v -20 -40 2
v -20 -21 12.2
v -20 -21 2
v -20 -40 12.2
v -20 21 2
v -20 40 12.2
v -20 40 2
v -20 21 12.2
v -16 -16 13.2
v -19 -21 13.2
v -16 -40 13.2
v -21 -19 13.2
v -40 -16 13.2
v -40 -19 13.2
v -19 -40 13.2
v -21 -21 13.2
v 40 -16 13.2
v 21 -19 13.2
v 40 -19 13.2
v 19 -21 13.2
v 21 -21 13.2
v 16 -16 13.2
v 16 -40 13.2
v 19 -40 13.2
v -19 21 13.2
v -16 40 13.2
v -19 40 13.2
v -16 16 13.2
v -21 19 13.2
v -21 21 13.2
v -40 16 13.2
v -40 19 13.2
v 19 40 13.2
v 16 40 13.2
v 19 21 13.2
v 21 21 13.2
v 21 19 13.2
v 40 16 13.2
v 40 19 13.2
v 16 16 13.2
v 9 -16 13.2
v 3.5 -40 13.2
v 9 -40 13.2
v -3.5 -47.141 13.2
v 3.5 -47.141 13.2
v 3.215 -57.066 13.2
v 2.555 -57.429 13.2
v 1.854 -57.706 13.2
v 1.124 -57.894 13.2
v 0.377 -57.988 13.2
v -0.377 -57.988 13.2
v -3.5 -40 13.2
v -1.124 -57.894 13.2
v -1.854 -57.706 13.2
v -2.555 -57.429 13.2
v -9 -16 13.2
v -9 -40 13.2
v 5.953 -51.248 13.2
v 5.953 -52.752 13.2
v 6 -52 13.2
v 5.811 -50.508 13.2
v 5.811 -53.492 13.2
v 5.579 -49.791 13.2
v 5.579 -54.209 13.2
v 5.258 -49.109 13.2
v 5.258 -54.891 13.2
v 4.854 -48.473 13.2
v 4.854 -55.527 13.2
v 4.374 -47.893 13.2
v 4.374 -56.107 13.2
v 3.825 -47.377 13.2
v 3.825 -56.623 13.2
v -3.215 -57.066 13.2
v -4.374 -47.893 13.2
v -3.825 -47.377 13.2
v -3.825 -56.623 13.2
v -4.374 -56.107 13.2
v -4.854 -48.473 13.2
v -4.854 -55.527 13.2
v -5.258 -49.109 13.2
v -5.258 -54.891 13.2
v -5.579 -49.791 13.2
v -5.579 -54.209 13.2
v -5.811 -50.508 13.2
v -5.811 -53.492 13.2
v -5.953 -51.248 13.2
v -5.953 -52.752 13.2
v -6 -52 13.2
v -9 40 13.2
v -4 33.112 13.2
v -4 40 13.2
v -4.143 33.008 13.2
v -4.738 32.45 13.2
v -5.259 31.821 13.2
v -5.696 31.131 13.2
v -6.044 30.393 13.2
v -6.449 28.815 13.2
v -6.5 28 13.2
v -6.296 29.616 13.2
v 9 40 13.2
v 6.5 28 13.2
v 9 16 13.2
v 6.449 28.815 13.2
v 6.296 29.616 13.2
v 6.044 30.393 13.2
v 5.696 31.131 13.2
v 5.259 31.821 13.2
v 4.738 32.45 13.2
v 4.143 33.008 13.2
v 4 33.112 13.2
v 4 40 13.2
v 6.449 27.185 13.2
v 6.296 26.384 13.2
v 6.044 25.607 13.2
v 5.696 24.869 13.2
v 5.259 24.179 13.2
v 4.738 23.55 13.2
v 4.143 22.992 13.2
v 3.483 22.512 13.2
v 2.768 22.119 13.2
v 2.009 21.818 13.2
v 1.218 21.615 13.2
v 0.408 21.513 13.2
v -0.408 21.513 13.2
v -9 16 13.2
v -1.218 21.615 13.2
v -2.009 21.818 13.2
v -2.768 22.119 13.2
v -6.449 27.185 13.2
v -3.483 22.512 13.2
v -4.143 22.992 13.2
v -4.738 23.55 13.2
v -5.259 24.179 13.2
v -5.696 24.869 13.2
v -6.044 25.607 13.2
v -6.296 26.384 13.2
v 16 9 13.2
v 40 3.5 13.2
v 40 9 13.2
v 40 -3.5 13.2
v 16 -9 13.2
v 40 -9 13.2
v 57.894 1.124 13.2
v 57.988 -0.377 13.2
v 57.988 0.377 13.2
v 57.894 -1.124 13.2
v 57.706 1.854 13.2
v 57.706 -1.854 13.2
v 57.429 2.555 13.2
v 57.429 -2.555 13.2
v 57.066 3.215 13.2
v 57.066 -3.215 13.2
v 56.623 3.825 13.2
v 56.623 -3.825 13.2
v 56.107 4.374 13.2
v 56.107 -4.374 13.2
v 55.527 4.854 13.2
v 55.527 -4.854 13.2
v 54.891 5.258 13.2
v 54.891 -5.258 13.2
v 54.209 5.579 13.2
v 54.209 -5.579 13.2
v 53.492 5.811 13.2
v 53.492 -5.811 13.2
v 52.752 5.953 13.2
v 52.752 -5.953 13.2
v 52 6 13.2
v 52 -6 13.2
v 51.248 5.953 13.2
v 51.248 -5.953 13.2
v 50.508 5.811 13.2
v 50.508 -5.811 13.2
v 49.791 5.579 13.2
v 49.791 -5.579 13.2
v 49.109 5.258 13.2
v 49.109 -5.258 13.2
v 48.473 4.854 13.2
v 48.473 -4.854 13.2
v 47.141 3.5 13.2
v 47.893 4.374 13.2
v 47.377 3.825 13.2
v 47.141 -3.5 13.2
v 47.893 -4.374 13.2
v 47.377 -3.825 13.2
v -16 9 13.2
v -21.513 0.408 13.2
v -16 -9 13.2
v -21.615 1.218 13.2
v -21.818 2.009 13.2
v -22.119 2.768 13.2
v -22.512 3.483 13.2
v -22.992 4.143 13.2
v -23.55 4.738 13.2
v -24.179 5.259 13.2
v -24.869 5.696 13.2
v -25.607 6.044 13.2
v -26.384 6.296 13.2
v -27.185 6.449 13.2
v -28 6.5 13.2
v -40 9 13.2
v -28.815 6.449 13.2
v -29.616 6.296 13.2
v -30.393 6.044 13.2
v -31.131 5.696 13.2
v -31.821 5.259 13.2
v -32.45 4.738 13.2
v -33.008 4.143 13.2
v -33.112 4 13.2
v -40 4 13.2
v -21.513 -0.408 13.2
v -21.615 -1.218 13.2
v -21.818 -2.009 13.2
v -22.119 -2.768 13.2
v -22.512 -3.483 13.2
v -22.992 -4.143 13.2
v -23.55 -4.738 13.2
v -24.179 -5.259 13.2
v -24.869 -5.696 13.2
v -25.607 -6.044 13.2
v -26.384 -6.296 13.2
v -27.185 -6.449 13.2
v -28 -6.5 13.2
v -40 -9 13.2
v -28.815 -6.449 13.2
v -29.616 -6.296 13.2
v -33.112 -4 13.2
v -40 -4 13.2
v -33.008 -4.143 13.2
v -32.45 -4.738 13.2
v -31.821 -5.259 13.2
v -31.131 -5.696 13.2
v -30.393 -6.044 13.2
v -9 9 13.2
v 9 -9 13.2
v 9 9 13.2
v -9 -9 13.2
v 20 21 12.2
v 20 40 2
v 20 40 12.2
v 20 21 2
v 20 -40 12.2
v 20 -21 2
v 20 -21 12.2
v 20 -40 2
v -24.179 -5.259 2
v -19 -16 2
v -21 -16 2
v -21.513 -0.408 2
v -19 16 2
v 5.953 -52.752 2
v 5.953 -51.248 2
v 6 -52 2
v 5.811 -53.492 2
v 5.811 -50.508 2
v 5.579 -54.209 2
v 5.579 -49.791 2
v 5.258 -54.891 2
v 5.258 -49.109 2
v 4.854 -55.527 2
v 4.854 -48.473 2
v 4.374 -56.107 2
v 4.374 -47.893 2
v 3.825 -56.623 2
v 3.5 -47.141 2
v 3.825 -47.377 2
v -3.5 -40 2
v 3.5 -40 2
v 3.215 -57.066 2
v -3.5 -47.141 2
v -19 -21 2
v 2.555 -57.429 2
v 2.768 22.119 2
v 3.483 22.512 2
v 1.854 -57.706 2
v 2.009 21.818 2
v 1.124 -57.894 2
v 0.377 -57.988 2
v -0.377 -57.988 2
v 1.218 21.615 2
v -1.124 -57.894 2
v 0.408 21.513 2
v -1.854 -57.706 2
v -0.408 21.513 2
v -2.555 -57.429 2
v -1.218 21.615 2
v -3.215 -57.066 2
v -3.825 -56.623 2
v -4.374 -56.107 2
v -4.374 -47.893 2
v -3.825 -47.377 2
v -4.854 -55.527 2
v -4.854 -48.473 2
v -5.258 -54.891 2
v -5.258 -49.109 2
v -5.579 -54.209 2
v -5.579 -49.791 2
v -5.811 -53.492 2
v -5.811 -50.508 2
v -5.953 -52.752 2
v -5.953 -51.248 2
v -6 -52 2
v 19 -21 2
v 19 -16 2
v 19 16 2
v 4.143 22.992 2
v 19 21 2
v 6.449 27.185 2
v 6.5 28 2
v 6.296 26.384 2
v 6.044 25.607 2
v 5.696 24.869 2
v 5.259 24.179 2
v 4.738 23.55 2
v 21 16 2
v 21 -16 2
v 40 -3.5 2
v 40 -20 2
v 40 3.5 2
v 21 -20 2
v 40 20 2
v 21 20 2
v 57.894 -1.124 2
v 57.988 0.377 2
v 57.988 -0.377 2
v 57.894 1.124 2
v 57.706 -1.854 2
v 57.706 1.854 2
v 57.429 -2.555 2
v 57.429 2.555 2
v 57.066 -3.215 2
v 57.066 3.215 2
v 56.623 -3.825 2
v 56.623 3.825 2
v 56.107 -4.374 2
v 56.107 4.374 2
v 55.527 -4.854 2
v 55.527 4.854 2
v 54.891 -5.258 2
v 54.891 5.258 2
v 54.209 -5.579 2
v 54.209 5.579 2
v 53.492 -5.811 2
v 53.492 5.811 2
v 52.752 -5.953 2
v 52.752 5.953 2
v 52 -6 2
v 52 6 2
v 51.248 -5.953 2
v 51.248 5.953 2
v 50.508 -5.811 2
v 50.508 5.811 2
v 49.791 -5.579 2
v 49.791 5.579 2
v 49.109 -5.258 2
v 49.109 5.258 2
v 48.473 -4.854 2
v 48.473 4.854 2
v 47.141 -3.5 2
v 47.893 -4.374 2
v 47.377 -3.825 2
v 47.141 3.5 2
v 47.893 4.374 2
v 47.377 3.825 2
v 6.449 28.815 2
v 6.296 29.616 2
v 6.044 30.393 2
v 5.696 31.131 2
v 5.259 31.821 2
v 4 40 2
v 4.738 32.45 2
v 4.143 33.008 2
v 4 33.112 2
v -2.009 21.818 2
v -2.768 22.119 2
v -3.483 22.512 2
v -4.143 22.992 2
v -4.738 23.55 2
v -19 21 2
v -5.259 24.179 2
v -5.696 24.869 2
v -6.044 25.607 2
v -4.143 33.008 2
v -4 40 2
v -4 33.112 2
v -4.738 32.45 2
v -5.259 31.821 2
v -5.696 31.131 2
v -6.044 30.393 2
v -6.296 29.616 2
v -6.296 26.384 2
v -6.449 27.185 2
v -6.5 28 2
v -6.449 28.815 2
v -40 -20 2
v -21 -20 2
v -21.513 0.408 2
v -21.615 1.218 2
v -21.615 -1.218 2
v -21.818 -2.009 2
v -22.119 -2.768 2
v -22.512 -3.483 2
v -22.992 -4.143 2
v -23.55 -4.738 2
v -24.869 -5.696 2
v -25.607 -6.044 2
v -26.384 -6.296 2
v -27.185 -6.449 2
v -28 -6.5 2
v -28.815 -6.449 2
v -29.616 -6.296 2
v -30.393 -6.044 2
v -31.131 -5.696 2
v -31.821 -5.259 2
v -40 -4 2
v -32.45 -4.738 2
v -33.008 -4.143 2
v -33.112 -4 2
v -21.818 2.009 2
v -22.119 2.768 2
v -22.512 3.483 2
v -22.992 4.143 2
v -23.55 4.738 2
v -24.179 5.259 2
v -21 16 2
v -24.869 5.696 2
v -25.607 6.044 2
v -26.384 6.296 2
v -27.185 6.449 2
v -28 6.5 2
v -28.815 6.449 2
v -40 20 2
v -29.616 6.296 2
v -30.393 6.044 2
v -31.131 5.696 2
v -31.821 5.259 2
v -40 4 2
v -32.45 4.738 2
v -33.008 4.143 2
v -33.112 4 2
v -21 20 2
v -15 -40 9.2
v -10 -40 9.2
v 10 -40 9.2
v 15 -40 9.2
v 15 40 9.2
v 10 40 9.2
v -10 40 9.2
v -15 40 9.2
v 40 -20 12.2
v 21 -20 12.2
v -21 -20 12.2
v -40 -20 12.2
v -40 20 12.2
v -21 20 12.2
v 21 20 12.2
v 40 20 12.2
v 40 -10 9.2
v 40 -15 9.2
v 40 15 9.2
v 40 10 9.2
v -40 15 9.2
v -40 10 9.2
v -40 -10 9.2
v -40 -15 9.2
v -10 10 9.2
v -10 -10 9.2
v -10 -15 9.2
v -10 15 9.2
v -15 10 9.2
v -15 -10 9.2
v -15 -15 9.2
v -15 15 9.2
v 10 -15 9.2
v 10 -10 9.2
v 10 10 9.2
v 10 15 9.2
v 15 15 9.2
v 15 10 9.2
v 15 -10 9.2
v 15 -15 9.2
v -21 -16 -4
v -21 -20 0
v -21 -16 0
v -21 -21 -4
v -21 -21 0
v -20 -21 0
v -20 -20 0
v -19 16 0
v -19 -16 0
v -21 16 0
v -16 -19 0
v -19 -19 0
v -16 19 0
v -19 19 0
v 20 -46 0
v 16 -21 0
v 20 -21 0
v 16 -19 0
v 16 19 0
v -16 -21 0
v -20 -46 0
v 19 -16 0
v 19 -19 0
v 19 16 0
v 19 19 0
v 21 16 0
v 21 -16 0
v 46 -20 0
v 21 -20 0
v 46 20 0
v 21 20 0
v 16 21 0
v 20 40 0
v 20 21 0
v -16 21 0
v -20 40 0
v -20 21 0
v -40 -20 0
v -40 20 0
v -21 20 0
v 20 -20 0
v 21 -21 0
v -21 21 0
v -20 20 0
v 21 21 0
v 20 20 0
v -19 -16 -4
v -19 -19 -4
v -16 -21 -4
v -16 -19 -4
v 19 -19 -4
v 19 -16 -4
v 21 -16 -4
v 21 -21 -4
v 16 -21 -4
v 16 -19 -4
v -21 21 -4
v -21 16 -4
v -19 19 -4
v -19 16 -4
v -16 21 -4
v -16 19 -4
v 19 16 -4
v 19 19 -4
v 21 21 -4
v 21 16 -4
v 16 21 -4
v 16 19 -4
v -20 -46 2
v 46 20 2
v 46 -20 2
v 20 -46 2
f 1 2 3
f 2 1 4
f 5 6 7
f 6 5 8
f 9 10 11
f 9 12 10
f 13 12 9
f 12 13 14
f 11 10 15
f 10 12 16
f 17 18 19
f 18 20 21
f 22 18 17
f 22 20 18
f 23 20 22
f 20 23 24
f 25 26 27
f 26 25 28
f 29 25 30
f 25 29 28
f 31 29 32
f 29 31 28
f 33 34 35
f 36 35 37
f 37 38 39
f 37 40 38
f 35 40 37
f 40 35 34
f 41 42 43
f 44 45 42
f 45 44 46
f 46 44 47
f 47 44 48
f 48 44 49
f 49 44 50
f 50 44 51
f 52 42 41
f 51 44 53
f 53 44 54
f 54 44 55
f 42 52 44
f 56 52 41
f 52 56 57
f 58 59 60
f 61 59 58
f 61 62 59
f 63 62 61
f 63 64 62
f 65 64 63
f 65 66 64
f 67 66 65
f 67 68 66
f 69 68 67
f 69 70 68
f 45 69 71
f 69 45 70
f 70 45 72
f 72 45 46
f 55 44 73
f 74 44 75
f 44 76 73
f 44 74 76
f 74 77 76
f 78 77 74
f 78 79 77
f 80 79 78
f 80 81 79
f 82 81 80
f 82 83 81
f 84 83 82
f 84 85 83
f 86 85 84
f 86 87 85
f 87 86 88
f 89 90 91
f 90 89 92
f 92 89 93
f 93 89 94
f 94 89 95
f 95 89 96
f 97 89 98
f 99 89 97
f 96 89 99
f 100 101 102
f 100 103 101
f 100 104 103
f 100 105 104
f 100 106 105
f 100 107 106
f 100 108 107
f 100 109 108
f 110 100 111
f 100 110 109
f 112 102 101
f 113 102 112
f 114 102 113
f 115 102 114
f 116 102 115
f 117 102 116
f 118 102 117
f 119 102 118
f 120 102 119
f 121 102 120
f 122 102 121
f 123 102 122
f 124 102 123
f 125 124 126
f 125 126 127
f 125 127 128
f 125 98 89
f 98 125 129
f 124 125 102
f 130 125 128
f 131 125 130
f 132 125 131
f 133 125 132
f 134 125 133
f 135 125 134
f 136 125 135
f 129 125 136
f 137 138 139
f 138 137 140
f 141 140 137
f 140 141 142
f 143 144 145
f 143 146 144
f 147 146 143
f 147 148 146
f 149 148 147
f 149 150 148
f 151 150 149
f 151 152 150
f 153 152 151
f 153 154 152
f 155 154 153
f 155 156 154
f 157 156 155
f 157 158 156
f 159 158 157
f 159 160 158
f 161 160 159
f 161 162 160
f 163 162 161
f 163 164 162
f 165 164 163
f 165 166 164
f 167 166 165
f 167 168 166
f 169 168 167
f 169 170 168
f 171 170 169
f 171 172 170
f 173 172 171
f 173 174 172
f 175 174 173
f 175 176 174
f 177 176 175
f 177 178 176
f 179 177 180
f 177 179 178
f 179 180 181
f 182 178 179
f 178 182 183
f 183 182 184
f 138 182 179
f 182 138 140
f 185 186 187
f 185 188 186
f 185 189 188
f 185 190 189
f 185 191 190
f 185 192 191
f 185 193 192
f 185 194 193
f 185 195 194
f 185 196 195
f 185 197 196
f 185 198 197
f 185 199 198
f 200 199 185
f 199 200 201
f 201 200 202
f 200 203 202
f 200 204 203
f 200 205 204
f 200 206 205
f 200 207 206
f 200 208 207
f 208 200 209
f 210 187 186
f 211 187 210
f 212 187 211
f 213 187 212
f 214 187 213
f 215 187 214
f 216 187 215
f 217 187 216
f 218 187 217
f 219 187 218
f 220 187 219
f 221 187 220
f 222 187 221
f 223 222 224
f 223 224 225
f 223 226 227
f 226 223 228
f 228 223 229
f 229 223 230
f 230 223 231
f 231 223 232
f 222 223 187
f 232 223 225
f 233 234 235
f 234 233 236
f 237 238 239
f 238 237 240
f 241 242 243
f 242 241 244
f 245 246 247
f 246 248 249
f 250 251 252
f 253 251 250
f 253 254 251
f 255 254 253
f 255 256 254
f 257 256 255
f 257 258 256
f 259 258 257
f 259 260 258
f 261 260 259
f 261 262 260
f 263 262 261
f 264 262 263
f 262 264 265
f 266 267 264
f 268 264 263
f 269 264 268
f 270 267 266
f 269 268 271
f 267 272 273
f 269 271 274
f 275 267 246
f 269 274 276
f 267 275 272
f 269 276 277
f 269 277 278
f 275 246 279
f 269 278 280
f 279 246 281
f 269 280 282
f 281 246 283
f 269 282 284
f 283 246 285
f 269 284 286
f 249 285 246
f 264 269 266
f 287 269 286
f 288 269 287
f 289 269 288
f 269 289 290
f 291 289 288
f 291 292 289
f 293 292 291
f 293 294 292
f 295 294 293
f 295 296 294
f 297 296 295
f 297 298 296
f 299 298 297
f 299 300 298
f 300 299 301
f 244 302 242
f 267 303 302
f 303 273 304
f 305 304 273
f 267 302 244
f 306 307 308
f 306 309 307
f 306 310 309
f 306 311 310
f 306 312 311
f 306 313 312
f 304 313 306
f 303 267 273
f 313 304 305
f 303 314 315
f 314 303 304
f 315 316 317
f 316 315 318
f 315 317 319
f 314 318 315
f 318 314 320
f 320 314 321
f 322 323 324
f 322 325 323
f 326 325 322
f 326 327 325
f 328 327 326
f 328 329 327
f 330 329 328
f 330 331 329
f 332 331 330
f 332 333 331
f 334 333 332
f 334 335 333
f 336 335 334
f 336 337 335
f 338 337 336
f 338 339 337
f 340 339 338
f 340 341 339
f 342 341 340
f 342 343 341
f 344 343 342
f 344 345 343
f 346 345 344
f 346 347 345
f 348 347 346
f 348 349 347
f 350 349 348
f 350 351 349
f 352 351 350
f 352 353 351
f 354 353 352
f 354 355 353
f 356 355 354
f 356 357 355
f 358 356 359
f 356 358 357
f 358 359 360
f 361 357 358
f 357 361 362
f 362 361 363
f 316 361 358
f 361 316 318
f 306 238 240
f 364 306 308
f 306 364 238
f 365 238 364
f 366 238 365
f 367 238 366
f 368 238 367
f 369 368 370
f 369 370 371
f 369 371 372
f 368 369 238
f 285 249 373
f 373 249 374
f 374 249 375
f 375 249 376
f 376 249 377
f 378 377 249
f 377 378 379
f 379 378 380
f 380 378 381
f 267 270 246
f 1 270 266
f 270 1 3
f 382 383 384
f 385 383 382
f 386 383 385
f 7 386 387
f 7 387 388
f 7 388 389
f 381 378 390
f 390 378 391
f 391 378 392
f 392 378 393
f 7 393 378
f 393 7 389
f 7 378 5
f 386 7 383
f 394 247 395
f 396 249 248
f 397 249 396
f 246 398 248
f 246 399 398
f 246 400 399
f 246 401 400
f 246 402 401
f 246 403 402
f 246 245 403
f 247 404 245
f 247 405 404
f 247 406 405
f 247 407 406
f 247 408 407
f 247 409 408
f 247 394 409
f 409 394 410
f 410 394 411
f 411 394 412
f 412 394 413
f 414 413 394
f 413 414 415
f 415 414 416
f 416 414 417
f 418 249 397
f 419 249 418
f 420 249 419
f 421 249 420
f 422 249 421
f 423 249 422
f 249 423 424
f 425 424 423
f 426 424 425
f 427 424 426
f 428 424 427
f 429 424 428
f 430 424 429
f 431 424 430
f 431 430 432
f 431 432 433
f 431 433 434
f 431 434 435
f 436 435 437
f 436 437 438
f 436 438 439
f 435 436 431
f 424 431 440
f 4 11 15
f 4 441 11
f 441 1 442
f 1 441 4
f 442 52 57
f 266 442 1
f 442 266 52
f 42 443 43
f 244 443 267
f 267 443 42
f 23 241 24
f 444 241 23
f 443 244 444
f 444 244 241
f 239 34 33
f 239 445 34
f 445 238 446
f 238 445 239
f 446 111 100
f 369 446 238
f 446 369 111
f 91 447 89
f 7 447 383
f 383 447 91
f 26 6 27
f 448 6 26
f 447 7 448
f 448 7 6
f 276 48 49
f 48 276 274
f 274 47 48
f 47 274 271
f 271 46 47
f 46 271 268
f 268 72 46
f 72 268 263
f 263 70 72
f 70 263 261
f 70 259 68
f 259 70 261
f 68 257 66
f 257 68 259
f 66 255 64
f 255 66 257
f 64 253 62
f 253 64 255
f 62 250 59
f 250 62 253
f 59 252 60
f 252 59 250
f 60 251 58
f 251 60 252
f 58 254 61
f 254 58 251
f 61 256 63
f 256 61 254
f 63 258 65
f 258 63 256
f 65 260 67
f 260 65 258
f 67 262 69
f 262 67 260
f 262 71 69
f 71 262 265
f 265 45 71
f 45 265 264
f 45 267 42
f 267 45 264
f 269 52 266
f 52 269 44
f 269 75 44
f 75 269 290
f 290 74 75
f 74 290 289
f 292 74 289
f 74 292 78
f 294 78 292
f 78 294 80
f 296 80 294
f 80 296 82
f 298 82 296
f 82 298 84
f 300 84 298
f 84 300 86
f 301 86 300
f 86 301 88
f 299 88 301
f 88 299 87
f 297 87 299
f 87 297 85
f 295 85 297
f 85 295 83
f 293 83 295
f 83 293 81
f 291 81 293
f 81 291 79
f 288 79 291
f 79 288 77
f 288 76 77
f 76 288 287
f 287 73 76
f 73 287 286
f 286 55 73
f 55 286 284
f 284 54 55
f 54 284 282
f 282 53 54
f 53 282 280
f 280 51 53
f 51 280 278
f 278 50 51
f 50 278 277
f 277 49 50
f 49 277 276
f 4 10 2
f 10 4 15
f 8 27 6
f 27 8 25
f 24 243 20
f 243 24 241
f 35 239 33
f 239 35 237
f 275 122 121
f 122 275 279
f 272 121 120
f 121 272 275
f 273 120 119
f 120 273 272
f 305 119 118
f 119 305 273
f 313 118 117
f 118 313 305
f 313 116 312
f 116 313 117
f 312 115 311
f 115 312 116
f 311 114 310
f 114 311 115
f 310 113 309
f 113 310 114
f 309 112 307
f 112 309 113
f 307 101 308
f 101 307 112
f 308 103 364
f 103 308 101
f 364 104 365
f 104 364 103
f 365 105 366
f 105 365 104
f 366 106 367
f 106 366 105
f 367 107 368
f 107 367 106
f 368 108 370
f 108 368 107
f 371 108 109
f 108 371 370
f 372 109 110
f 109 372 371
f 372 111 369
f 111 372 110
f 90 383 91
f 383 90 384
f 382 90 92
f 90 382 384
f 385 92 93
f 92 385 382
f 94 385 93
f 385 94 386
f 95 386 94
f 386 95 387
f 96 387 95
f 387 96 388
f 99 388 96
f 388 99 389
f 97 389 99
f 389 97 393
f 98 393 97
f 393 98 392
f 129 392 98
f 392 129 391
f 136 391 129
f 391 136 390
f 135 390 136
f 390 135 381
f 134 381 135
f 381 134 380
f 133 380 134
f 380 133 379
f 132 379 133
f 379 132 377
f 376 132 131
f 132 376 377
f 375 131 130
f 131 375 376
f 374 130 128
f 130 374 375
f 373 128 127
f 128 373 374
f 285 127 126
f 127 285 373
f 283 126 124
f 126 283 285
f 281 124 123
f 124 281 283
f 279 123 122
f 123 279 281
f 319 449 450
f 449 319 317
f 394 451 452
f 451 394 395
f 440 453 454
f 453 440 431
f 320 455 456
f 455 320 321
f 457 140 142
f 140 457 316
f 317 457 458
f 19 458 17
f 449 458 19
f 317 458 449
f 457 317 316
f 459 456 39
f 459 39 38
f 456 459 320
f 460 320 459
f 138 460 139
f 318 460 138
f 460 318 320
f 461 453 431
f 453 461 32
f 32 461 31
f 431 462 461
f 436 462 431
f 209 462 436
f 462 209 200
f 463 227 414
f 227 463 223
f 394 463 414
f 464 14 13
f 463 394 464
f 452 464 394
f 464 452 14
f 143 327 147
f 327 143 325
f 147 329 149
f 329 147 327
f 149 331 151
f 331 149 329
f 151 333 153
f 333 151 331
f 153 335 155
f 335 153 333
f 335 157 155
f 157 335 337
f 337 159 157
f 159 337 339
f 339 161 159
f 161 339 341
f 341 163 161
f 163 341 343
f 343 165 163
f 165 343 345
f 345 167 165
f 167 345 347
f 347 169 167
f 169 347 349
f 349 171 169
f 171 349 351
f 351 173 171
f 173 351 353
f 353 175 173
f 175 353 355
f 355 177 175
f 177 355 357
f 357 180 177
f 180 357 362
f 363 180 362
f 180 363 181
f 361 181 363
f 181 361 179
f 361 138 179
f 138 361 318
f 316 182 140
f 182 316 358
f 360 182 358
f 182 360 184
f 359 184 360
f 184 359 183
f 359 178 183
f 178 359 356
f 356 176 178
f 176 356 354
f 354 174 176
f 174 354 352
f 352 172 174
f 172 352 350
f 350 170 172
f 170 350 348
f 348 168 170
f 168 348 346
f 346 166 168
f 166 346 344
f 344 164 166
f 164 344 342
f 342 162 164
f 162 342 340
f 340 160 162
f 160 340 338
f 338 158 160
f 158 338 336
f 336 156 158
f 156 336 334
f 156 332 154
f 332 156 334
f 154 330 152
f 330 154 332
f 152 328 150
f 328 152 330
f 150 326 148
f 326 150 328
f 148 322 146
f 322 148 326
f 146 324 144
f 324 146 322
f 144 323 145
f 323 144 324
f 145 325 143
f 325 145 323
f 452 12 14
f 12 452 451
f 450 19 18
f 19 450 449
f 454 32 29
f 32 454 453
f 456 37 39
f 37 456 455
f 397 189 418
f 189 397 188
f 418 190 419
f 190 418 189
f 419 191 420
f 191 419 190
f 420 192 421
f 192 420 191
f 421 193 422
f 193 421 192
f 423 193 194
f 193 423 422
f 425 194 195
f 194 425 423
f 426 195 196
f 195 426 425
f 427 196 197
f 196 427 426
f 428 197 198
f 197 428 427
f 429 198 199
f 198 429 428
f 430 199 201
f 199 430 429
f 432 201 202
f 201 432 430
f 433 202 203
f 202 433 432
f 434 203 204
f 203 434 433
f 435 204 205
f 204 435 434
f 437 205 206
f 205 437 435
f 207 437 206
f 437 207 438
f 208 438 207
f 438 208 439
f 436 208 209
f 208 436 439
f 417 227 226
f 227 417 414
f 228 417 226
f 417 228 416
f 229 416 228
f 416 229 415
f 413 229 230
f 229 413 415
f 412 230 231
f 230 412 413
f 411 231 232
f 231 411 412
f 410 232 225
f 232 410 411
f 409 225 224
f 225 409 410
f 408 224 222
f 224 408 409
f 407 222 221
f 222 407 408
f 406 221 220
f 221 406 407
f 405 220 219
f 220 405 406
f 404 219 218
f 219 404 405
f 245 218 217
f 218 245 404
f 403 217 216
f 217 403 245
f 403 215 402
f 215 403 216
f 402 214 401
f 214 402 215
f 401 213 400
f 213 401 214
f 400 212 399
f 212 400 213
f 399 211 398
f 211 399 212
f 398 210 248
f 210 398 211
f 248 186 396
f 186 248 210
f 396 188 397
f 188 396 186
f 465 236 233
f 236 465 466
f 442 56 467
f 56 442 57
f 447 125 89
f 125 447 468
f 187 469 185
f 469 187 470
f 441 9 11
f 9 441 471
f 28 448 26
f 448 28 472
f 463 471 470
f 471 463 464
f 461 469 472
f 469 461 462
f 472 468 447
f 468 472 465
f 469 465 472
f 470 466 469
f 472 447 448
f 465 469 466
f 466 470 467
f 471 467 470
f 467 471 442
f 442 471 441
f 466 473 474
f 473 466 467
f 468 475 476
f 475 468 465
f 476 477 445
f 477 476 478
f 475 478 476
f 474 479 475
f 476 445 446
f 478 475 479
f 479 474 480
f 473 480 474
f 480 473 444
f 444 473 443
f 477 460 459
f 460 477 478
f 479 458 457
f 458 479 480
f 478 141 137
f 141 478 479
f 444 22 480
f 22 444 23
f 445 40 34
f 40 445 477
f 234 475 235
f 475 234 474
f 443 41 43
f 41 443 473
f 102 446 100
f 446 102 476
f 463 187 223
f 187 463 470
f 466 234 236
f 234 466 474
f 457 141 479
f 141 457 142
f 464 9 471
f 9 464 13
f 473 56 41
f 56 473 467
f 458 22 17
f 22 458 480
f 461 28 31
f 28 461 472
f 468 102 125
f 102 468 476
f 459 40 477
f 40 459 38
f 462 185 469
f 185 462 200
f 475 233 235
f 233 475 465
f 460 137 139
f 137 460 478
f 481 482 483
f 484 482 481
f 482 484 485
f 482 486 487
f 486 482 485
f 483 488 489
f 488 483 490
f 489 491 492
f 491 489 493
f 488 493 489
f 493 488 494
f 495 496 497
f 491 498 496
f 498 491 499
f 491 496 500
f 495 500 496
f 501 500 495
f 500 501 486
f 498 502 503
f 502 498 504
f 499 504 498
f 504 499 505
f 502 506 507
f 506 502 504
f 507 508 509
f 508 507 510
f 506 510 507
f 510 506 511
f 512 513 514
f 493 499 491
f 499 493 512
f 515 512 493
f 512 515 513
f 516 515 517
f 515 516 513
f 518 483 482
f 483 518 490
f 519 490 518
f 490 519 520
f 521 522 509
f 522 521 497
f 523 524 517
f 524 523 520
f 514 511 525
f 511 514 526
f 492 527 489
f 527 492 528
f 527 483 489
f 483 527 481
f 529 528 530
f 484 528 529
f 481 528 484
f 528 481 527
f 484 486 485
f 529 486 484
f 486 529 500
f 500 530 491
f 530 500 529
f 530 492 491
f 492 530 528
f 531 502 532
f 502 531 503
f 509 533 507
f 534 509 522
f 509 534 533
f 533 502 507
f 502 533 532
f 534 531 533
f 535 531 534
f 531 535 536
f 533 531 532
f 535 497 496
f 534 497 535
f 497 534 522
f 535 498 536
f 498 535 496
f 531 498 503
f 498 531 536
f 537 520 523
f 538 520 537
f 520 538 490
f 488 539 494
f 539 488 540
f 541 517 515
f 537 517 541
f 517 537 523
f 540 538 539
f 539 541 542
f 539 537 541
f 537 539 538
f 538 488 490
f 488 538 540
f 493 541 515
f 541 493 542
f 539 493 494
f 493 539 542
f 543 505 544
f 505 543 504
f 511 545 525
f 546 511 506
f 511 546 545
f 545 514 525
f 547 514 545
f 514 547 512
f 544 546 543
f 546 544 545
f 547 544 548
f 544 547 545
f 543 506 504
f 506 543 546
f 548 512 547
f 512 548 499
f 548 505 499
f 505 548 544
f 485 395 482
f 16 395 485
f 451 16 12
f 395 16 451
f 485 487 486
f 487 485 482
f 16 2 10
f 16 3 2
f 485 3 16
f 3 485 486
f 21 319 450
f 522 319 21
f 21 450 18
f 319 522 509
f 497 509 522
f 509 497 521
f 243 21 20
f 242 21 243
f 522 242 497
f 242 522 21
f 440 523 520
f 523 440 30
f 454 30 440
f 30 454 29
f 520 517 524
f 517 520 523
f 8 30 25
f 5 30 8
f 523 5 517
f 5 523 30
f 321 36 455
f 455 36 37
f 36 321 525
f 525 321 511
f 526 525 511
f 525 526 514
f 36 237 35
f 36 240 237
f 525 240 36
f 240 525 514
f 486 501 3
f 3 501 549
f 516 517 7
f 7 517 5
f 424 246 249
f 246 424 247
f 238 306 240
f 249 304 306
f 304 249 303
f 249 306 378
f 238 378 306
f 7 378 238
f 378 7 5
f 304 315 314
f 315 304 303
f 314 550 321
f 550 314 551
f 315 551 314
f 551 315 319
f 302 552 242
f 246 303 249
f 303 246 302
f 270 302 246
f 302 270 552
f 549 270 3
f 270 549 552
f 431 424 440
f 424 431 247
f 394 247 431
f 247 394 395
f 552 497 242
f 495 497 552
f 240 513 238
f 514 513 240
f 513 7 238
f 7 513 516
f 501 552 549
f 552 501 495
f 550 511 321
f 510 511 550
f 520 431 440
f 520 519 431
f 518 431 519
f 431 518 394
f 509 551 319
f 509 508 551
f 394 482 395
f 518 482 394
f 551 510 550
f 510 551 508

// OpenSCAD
$fn = 50;

// spacing = .4;
// insetLength = topTrackLinkLength + spacing;
// insetWidth = topTrackLinkWidth + spacing / 2;
// insetDepth = topTrackLinkDepth + spacing;

baseHeight = 2;
baseSupport = 6;

trackChamfer = 1;
trackWidth = 40;
trackHeight = 11.2;

topTrackLength = 80;
topTrackLinkLength = 8;
topTrackLinkOffset = 20;
topTrackLinkWidth = 2;
topTrackLinkDepth = 4;

linkOffset = 12;
linkWidth = 7;
linkSize = 12;

railWidth = 7;
railOffset = 4;
railDepth = 4;

union() {
  difference() {
    union() {
      renderTopTrack();
      rotate([0, 0, 90]) {
        renderTopTrack();
      }
    }
    union() {
      renderTopRails();
      rotate([0, 0, 90]) {
        renderTopRails();
      }
    }
  }

  renderTopBase();
  rotate([0, 0, 90]) {
    renderTopBase();
  }

  renderTopTrackLinks();
  renderTopGrips();
}

module renderTopBase() {
  translate([0, -baseSupport / 2, baseHeight / 2]) {
    cube([trackWidth, topTrackLength + baseSupport, baseHeight], center=true);
  }
}

module renderTopTrack() {
  translate([0, 0, trackHeight / 2 + baseHeight]) {
    difference() {
      union() {
        cube([trackWidth, topTrackLength, trackHeight], center=true);
        renderTopMaleLink();
      }
      renderTopFemaleLink();
      renderTopChamfers();
    }
  }
}

module renderTopChamfers() {
  union() {
    translate([-trackWidth / 2, topTrackLength / 2, trackHeight / 2]) {
      rotate([90, 0, 0]) {
        linear_extrude(topTrackLength + 1) {
          polygon(
            [
              [0, 0],
              [trackChamfer, 0],
              [0, -trackChamfer],
            ]
          );
        }
      }
    }
    translate([trackWidth / 2, topTrackLength / 2, trackHeight / 2]) {
      rotate([90, 0, 0]) {
        linear_extrude(topTrackLength + 1) {
          polygon(
            [
              [-trackChamfer, 0],
              [0, 0],
              [0, -trackChamfer],
            ]
          );
        }
      }
    }
  }
}

module renderTopFemaleLink() {
  translate([0, topTrackLength / 2 - linkOffset, -trackHeight / 2 - .5]) {
    linear_extrude(trackHeight + 1) {
      circle(d=linkSize + 1);
      translate([0, linkOffset / 2, 0]) {
        square([linkWidth + 1, linkOffset + 1], center=true);
      }
    }
  }
}

module renderTopMaleLink() {
  translate([0, -topTrackLength / 2 - linkOffset, -trackHeight / 2]) {
    linear_extrude(trackHeight) {
      circle(d=linkSize);
      translate([0, linkOffset / 2, 0]) {
        square([linkWidth, linkOffset], center=true);
      }
    }
  }
}

module renderTopGrips() {
  translate([0, 0, trackHeight / 2 + baseHeight]) {
    for (y = [-1:1]) {
      if (y != 0) {
        for (x = [-1:1]) {
          if (x != 0) {
            translate([x * trackWidth / 2, y * (topTrackLinkOffset - topTrackLinkLength / 4 + topTrackLinkWidth / 4), -baseHeight / 2]) {
              cube([topTrackLinkWidth, topTrackLinkLength / 2 + topTrackLinkWidth / 2, baseHeight + trackHeight], center=true);
            }
          }
        }
      }
    }
  }
}

module renderTopTrackLinks() {
  union() {
    for (y = [-1:1]) {
      if (y != 0) {
        for (x = [-1:1]) {
          if (x != 0) {
            translate([x * trackWidth / 2, y * (topTrackLinkOffset - topTrackLinkLength / 4 + topTrackLinkWidth / 4), -topTrackLinkDepth / 2]) {
              cube([topTrackLinkWidth, topTrackLinkLength / 2 + topTrackLinkWidth / 2, topTrackLinkDepth], center=true);
            }

            translate([x * (trackWidth - topTrackLinkLength / 2) / 2, y * topTrackLinkOffset, -topTrackLinkDepth / 2]) {
              cube([topTrackLinkLength / 2, topTrackLinkWidth, topTrackLinkDepth], center=true);
            }
          }
        }
      }
    }
  }
}

module renderTopRails() {
  union() {
    translate([-(trackWidth - railWidth) / 2 + railOffset, 0, trackHeight - railDepth]) {
      renderTopRail();
    }
    translate([(trackWidth - railWidth) / 2 - railOffset, 0, trackHeight - railDepth]) {
      renderTopRail();
    }
  }
}

module renderTopRail() {
  translate([0, topTrackLength / 2 + .5, railDepth * 1.5]) {
    rotate([90, 0, 0]) {
      linear_extrude(topTrackLength + 1) {
        polygon(
          [
            [-railWidth / 2 - 1, railDepth],
            [-railWidth / 2 + 1, -railDepth],
            [railWidth / 2 - 1, -railDepth],
            [railWidth / 2 + 1, railDepth],
          ]
        );
      }
    }
  }
}
